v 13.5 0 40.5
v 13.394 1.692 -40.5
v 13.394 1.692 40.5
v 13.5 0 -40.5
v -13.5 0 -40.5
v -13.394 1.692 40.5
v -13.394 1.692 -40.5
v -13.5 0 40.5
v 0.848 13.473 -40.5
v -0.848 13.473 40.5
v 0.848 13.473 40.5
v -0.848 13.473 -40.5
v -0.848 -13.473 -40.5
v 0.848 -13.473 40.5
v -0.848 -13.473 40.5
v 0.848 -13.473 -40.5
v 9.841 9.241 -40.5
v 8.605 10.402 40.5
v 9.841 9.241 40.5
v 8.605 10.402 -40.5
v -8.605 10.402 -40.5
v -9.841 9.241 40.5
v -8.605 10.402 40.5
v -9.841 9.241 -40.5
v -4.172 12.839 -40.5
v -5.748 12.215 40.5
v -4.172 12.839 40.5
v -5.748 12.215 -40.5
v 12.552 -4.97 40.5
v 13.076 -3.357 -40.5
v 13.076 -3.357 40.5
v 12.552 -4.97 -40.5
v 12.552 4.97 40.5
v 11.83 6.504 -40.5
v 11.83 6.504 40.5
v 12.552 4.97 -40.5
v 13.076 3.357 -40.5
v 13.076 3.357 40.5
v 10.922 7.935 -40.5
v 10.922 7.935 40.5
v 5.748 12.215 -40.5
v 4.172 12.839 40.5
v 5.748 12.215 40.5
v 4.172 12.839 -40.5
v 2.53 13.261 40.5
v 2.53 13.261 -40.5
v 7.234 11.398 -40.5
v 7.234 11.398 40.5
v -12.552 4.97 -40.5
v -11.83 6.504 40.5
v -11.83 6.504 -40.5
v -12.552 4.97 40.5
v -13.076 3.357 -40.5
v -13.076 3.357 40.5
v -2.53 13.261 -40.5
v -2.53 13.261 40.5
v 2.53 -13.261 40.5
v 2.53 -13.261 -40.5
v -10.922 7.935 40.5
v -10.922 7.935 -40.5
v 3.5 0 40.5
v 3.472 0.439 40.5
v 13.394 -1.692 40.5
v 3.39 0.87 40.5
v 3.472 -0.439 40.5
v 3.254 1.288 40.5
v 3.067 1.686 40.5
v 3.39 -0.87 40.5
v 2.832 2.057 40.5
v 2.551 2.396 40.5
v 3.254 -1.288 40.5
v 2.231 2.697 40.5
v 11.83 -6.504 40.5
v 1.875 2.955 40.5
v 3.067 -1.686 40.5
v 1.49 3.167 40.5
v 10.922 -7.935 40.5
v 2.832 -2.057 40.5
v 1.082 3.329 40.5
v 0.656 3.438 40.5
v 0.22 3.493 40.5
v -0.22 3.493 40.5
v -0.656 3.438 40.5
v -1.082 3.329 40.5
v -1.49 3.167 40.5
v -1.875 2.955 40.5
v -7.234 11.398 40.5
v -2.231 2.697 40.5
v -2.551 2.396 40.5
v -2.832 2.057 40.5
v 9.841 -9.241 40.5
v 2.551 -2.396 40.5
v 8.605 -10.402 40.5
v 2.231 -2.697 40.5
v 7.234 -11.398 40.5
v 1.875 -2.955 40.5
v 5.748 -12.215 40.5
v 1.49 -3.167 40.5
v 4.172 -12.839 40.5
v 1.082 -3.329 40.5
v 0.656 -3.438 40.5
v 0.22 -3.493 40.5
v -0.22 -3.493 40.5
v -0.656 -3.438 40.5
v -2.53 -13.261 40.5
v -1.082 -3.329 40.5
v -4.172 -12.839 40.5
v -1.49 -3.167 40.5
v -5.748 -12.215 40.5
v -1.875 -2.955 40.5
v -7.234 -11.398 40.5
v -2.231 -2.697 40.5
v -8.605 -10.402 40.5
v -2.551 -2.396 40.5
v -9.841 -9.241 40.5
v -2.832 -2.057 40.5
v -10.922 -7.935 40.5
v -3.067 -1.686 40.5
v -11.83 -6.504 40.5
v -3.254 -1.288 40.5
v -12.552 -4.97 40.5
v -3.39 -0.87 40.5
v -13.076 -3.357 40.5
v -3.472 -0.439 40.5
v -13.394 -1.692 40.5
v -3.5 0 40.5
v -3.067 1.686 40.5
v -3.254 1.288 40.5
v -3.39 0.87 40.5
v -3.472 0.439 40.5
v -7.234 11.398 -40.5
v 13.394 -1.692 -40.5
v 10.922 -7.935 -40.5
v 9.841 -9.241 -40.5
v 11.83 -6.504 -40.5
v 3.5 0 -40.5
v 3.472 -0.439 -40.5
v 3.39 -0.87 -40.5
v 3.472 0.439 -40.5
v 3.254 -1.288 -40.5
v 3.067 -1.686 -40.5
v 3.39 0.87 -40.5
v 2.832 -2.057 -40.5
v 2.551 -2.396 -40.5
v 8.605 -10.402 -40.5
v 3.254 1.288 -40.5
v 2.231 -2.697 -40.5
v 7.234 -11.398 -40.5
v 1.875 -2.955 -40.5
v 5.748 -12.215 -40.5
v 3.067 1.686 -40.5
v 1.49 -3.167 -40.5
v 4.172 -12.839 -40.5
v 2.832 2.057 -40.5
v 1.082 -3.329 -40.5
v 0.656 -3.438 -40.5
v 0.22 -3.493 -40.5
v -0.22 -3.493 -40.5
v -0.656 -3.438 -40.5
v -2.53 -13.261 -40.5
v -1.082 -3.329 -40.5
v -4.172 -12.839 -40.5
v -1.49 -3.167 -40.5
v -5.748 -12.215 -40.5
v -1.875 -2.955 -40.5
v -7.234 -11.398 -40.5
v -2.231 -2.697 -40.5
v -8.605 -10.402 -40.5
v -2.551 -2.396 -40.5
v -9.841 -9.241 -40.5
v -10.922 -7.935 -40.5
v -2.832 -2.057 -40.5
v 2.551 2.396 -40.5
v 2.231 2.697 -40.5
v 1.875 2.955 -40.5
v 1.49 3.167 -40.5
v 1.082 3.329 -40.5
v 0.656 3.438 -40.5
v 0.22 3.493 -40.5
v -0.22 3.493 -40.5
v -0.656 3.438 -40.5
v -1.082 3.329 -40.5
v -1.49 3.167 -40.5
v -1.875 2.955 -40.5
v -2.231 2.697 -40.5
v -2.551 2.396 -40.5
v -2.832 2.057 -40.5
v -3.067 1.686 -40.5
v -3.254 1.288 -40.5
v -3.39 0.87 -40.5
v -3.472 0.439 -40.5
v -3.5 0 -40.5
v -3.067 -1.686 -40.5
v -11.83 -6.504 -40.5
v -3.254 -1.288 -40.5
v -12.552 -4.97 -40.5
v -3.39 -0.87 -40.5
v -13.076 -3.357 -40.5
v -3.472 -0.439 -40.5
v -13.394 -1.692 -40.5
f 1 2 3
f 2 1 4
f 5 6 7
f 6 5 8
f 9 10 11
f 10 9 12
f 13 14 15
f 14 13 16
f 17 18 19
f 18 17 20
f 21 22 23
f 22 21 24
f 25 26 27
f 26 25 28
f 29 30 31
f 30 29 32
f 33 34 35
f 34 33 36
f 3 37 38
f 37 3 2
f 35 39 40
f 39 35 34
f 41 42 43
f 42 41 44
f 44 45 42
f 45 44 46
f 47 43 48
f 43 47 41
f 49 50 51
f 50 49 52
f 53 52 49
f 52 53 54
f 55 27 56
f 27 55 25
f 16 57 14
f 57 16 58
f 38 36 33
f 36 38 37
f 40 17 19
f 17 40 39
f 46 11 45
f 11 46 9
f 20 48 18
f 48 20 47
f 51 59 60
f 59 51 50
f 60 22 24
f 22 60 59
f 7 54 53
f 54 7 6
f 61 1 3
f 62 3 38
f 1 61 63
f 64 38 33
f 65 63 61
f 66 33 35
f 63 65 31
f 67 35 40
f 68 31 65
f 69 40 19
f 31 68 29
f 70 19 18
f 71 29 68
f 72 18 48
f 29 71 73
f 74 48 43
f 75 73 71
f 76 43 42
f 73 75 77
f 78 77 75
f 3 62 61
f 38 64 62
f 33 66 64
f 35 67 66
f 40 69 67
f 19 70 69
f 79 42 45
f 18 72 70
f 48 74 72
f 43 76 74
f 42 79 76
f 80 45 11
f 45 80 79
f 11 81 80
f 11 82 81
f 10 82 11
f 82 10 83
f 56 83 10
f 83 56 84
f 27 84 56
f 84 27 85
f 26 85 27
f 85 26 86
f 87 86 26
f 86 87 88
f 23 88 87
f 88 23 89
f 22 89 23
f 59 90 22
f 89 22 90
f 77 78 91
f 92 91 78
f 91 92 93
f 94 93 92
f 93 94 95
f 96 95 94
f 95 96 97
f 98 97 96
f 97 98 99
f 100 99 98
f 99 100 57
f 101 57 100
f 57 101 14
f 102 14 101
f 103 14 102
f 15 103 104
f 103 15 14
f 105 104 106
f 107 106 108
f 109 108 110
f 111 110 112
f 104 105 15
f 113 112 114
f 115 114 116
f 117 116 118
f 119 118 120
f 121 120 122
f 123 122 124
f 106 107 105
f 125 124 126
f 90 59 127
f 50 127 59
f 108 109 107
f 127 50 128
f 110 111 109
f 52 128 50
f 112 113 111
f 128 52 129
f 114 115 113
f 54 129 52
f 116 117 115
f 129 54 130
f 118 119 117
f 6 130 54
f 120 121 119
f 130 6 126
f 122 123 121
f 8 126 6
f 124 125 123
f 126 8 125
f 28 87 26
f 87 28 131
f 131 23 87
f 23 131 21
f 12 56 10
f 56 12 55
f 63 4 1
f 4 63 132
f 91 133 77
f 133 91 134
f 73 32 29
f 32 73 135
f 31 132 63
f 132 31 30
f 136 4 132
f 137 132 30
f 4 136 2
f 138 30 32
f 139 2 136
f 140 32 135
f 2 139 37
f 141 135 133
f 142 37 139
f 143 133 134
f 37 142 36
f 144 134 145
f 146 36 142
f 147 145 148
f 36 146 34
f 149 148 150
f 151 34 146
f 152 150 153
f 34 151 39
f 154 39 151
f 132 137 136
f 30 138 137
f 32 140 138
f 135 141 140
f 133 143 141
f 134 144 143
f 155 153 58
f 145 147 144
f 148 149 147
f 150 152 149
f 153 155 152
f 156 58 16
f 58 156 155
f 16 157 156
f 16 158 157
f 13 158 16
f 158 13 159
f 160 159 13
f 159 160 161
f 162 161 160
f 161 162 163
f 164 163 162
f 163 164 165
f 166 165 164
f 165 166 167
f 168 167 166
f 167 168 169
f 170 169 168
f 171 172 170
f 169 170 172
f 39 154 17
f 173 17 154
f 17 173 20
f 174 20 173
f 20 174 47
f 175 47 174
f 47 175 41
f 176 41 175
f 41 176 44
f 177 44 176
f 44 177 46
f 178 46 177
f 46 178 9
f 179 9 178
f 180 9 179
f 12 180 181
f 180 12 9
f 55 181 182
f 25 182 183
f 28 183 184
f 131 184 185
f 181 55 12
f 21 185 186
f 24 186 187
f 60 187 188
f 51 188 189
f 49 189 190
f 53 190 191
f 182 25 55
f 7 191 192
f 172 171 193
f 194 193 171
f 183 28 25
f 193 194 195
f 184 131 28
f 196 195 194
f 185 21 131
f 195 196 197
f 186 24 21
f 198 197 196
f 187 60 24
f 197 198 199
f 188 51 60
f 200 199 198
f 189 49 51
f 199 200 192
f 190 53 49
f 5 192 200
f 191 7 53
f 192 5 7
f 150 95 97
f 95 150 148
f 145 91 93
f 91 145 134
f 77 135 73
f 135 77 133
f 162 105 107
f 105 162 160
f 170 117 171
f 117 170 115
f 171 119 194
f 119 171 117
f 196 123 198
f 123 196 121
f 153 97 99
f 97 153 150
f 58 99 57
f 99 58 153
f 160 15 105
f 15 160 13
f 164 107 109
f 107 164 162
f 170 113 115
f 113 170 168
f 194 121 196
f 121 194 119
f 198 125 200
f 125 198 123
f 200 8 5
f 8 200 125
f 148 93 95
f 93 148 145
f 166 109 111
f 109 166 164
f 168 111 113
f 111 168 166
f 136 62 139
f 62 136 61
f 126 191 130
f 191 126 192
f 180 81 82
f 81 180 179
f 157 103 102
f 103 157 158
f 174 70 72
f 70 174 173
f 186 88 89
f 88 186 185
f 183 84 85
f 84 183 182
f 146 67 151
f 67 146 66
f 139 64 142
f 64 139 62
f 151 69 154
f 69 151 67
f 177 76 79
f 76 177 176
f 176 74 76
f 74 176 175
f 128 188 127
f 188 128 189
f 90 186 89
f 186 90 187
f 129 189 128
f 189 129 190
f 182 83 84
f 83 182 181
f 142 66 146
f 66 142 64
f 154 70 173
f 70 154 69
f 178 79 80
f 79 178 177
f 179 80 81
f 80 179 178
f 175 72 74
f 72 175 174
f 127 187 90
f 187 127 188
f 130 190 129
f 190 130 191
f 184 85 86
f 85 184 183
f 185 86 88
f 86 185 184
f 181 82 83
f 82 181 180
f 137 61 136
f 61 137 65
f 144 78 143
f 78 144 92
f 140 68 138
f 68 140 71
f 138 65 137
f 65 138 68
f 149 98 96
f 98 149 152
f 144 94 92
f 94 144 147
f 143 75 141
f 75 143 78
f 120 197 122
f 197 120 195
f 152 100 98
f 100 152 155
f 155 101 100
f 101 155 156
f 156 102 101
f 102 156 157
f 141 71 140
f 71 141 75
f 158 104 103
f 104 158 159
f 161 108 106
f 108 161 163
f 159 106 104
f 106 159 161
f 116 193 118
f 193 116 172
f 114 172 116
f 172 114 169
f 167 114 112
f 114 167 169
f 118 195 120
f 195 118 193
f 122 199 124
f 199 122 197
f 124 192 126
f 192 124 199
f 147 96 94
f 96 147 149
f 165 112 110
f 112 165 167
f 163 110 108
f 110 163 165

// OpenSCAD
$fn = 50;


difference() {
	union() {
		translate(v = [0, 0, -40.5000000000]) {
			cylinder(h = 81, r = 13.5000000000);
		}
	}
	union() {
		translate(v = [0, 0, -100.0000000000]) {
			cylinder(h = 200, r = 3.5000000000);
		}
	}
}
